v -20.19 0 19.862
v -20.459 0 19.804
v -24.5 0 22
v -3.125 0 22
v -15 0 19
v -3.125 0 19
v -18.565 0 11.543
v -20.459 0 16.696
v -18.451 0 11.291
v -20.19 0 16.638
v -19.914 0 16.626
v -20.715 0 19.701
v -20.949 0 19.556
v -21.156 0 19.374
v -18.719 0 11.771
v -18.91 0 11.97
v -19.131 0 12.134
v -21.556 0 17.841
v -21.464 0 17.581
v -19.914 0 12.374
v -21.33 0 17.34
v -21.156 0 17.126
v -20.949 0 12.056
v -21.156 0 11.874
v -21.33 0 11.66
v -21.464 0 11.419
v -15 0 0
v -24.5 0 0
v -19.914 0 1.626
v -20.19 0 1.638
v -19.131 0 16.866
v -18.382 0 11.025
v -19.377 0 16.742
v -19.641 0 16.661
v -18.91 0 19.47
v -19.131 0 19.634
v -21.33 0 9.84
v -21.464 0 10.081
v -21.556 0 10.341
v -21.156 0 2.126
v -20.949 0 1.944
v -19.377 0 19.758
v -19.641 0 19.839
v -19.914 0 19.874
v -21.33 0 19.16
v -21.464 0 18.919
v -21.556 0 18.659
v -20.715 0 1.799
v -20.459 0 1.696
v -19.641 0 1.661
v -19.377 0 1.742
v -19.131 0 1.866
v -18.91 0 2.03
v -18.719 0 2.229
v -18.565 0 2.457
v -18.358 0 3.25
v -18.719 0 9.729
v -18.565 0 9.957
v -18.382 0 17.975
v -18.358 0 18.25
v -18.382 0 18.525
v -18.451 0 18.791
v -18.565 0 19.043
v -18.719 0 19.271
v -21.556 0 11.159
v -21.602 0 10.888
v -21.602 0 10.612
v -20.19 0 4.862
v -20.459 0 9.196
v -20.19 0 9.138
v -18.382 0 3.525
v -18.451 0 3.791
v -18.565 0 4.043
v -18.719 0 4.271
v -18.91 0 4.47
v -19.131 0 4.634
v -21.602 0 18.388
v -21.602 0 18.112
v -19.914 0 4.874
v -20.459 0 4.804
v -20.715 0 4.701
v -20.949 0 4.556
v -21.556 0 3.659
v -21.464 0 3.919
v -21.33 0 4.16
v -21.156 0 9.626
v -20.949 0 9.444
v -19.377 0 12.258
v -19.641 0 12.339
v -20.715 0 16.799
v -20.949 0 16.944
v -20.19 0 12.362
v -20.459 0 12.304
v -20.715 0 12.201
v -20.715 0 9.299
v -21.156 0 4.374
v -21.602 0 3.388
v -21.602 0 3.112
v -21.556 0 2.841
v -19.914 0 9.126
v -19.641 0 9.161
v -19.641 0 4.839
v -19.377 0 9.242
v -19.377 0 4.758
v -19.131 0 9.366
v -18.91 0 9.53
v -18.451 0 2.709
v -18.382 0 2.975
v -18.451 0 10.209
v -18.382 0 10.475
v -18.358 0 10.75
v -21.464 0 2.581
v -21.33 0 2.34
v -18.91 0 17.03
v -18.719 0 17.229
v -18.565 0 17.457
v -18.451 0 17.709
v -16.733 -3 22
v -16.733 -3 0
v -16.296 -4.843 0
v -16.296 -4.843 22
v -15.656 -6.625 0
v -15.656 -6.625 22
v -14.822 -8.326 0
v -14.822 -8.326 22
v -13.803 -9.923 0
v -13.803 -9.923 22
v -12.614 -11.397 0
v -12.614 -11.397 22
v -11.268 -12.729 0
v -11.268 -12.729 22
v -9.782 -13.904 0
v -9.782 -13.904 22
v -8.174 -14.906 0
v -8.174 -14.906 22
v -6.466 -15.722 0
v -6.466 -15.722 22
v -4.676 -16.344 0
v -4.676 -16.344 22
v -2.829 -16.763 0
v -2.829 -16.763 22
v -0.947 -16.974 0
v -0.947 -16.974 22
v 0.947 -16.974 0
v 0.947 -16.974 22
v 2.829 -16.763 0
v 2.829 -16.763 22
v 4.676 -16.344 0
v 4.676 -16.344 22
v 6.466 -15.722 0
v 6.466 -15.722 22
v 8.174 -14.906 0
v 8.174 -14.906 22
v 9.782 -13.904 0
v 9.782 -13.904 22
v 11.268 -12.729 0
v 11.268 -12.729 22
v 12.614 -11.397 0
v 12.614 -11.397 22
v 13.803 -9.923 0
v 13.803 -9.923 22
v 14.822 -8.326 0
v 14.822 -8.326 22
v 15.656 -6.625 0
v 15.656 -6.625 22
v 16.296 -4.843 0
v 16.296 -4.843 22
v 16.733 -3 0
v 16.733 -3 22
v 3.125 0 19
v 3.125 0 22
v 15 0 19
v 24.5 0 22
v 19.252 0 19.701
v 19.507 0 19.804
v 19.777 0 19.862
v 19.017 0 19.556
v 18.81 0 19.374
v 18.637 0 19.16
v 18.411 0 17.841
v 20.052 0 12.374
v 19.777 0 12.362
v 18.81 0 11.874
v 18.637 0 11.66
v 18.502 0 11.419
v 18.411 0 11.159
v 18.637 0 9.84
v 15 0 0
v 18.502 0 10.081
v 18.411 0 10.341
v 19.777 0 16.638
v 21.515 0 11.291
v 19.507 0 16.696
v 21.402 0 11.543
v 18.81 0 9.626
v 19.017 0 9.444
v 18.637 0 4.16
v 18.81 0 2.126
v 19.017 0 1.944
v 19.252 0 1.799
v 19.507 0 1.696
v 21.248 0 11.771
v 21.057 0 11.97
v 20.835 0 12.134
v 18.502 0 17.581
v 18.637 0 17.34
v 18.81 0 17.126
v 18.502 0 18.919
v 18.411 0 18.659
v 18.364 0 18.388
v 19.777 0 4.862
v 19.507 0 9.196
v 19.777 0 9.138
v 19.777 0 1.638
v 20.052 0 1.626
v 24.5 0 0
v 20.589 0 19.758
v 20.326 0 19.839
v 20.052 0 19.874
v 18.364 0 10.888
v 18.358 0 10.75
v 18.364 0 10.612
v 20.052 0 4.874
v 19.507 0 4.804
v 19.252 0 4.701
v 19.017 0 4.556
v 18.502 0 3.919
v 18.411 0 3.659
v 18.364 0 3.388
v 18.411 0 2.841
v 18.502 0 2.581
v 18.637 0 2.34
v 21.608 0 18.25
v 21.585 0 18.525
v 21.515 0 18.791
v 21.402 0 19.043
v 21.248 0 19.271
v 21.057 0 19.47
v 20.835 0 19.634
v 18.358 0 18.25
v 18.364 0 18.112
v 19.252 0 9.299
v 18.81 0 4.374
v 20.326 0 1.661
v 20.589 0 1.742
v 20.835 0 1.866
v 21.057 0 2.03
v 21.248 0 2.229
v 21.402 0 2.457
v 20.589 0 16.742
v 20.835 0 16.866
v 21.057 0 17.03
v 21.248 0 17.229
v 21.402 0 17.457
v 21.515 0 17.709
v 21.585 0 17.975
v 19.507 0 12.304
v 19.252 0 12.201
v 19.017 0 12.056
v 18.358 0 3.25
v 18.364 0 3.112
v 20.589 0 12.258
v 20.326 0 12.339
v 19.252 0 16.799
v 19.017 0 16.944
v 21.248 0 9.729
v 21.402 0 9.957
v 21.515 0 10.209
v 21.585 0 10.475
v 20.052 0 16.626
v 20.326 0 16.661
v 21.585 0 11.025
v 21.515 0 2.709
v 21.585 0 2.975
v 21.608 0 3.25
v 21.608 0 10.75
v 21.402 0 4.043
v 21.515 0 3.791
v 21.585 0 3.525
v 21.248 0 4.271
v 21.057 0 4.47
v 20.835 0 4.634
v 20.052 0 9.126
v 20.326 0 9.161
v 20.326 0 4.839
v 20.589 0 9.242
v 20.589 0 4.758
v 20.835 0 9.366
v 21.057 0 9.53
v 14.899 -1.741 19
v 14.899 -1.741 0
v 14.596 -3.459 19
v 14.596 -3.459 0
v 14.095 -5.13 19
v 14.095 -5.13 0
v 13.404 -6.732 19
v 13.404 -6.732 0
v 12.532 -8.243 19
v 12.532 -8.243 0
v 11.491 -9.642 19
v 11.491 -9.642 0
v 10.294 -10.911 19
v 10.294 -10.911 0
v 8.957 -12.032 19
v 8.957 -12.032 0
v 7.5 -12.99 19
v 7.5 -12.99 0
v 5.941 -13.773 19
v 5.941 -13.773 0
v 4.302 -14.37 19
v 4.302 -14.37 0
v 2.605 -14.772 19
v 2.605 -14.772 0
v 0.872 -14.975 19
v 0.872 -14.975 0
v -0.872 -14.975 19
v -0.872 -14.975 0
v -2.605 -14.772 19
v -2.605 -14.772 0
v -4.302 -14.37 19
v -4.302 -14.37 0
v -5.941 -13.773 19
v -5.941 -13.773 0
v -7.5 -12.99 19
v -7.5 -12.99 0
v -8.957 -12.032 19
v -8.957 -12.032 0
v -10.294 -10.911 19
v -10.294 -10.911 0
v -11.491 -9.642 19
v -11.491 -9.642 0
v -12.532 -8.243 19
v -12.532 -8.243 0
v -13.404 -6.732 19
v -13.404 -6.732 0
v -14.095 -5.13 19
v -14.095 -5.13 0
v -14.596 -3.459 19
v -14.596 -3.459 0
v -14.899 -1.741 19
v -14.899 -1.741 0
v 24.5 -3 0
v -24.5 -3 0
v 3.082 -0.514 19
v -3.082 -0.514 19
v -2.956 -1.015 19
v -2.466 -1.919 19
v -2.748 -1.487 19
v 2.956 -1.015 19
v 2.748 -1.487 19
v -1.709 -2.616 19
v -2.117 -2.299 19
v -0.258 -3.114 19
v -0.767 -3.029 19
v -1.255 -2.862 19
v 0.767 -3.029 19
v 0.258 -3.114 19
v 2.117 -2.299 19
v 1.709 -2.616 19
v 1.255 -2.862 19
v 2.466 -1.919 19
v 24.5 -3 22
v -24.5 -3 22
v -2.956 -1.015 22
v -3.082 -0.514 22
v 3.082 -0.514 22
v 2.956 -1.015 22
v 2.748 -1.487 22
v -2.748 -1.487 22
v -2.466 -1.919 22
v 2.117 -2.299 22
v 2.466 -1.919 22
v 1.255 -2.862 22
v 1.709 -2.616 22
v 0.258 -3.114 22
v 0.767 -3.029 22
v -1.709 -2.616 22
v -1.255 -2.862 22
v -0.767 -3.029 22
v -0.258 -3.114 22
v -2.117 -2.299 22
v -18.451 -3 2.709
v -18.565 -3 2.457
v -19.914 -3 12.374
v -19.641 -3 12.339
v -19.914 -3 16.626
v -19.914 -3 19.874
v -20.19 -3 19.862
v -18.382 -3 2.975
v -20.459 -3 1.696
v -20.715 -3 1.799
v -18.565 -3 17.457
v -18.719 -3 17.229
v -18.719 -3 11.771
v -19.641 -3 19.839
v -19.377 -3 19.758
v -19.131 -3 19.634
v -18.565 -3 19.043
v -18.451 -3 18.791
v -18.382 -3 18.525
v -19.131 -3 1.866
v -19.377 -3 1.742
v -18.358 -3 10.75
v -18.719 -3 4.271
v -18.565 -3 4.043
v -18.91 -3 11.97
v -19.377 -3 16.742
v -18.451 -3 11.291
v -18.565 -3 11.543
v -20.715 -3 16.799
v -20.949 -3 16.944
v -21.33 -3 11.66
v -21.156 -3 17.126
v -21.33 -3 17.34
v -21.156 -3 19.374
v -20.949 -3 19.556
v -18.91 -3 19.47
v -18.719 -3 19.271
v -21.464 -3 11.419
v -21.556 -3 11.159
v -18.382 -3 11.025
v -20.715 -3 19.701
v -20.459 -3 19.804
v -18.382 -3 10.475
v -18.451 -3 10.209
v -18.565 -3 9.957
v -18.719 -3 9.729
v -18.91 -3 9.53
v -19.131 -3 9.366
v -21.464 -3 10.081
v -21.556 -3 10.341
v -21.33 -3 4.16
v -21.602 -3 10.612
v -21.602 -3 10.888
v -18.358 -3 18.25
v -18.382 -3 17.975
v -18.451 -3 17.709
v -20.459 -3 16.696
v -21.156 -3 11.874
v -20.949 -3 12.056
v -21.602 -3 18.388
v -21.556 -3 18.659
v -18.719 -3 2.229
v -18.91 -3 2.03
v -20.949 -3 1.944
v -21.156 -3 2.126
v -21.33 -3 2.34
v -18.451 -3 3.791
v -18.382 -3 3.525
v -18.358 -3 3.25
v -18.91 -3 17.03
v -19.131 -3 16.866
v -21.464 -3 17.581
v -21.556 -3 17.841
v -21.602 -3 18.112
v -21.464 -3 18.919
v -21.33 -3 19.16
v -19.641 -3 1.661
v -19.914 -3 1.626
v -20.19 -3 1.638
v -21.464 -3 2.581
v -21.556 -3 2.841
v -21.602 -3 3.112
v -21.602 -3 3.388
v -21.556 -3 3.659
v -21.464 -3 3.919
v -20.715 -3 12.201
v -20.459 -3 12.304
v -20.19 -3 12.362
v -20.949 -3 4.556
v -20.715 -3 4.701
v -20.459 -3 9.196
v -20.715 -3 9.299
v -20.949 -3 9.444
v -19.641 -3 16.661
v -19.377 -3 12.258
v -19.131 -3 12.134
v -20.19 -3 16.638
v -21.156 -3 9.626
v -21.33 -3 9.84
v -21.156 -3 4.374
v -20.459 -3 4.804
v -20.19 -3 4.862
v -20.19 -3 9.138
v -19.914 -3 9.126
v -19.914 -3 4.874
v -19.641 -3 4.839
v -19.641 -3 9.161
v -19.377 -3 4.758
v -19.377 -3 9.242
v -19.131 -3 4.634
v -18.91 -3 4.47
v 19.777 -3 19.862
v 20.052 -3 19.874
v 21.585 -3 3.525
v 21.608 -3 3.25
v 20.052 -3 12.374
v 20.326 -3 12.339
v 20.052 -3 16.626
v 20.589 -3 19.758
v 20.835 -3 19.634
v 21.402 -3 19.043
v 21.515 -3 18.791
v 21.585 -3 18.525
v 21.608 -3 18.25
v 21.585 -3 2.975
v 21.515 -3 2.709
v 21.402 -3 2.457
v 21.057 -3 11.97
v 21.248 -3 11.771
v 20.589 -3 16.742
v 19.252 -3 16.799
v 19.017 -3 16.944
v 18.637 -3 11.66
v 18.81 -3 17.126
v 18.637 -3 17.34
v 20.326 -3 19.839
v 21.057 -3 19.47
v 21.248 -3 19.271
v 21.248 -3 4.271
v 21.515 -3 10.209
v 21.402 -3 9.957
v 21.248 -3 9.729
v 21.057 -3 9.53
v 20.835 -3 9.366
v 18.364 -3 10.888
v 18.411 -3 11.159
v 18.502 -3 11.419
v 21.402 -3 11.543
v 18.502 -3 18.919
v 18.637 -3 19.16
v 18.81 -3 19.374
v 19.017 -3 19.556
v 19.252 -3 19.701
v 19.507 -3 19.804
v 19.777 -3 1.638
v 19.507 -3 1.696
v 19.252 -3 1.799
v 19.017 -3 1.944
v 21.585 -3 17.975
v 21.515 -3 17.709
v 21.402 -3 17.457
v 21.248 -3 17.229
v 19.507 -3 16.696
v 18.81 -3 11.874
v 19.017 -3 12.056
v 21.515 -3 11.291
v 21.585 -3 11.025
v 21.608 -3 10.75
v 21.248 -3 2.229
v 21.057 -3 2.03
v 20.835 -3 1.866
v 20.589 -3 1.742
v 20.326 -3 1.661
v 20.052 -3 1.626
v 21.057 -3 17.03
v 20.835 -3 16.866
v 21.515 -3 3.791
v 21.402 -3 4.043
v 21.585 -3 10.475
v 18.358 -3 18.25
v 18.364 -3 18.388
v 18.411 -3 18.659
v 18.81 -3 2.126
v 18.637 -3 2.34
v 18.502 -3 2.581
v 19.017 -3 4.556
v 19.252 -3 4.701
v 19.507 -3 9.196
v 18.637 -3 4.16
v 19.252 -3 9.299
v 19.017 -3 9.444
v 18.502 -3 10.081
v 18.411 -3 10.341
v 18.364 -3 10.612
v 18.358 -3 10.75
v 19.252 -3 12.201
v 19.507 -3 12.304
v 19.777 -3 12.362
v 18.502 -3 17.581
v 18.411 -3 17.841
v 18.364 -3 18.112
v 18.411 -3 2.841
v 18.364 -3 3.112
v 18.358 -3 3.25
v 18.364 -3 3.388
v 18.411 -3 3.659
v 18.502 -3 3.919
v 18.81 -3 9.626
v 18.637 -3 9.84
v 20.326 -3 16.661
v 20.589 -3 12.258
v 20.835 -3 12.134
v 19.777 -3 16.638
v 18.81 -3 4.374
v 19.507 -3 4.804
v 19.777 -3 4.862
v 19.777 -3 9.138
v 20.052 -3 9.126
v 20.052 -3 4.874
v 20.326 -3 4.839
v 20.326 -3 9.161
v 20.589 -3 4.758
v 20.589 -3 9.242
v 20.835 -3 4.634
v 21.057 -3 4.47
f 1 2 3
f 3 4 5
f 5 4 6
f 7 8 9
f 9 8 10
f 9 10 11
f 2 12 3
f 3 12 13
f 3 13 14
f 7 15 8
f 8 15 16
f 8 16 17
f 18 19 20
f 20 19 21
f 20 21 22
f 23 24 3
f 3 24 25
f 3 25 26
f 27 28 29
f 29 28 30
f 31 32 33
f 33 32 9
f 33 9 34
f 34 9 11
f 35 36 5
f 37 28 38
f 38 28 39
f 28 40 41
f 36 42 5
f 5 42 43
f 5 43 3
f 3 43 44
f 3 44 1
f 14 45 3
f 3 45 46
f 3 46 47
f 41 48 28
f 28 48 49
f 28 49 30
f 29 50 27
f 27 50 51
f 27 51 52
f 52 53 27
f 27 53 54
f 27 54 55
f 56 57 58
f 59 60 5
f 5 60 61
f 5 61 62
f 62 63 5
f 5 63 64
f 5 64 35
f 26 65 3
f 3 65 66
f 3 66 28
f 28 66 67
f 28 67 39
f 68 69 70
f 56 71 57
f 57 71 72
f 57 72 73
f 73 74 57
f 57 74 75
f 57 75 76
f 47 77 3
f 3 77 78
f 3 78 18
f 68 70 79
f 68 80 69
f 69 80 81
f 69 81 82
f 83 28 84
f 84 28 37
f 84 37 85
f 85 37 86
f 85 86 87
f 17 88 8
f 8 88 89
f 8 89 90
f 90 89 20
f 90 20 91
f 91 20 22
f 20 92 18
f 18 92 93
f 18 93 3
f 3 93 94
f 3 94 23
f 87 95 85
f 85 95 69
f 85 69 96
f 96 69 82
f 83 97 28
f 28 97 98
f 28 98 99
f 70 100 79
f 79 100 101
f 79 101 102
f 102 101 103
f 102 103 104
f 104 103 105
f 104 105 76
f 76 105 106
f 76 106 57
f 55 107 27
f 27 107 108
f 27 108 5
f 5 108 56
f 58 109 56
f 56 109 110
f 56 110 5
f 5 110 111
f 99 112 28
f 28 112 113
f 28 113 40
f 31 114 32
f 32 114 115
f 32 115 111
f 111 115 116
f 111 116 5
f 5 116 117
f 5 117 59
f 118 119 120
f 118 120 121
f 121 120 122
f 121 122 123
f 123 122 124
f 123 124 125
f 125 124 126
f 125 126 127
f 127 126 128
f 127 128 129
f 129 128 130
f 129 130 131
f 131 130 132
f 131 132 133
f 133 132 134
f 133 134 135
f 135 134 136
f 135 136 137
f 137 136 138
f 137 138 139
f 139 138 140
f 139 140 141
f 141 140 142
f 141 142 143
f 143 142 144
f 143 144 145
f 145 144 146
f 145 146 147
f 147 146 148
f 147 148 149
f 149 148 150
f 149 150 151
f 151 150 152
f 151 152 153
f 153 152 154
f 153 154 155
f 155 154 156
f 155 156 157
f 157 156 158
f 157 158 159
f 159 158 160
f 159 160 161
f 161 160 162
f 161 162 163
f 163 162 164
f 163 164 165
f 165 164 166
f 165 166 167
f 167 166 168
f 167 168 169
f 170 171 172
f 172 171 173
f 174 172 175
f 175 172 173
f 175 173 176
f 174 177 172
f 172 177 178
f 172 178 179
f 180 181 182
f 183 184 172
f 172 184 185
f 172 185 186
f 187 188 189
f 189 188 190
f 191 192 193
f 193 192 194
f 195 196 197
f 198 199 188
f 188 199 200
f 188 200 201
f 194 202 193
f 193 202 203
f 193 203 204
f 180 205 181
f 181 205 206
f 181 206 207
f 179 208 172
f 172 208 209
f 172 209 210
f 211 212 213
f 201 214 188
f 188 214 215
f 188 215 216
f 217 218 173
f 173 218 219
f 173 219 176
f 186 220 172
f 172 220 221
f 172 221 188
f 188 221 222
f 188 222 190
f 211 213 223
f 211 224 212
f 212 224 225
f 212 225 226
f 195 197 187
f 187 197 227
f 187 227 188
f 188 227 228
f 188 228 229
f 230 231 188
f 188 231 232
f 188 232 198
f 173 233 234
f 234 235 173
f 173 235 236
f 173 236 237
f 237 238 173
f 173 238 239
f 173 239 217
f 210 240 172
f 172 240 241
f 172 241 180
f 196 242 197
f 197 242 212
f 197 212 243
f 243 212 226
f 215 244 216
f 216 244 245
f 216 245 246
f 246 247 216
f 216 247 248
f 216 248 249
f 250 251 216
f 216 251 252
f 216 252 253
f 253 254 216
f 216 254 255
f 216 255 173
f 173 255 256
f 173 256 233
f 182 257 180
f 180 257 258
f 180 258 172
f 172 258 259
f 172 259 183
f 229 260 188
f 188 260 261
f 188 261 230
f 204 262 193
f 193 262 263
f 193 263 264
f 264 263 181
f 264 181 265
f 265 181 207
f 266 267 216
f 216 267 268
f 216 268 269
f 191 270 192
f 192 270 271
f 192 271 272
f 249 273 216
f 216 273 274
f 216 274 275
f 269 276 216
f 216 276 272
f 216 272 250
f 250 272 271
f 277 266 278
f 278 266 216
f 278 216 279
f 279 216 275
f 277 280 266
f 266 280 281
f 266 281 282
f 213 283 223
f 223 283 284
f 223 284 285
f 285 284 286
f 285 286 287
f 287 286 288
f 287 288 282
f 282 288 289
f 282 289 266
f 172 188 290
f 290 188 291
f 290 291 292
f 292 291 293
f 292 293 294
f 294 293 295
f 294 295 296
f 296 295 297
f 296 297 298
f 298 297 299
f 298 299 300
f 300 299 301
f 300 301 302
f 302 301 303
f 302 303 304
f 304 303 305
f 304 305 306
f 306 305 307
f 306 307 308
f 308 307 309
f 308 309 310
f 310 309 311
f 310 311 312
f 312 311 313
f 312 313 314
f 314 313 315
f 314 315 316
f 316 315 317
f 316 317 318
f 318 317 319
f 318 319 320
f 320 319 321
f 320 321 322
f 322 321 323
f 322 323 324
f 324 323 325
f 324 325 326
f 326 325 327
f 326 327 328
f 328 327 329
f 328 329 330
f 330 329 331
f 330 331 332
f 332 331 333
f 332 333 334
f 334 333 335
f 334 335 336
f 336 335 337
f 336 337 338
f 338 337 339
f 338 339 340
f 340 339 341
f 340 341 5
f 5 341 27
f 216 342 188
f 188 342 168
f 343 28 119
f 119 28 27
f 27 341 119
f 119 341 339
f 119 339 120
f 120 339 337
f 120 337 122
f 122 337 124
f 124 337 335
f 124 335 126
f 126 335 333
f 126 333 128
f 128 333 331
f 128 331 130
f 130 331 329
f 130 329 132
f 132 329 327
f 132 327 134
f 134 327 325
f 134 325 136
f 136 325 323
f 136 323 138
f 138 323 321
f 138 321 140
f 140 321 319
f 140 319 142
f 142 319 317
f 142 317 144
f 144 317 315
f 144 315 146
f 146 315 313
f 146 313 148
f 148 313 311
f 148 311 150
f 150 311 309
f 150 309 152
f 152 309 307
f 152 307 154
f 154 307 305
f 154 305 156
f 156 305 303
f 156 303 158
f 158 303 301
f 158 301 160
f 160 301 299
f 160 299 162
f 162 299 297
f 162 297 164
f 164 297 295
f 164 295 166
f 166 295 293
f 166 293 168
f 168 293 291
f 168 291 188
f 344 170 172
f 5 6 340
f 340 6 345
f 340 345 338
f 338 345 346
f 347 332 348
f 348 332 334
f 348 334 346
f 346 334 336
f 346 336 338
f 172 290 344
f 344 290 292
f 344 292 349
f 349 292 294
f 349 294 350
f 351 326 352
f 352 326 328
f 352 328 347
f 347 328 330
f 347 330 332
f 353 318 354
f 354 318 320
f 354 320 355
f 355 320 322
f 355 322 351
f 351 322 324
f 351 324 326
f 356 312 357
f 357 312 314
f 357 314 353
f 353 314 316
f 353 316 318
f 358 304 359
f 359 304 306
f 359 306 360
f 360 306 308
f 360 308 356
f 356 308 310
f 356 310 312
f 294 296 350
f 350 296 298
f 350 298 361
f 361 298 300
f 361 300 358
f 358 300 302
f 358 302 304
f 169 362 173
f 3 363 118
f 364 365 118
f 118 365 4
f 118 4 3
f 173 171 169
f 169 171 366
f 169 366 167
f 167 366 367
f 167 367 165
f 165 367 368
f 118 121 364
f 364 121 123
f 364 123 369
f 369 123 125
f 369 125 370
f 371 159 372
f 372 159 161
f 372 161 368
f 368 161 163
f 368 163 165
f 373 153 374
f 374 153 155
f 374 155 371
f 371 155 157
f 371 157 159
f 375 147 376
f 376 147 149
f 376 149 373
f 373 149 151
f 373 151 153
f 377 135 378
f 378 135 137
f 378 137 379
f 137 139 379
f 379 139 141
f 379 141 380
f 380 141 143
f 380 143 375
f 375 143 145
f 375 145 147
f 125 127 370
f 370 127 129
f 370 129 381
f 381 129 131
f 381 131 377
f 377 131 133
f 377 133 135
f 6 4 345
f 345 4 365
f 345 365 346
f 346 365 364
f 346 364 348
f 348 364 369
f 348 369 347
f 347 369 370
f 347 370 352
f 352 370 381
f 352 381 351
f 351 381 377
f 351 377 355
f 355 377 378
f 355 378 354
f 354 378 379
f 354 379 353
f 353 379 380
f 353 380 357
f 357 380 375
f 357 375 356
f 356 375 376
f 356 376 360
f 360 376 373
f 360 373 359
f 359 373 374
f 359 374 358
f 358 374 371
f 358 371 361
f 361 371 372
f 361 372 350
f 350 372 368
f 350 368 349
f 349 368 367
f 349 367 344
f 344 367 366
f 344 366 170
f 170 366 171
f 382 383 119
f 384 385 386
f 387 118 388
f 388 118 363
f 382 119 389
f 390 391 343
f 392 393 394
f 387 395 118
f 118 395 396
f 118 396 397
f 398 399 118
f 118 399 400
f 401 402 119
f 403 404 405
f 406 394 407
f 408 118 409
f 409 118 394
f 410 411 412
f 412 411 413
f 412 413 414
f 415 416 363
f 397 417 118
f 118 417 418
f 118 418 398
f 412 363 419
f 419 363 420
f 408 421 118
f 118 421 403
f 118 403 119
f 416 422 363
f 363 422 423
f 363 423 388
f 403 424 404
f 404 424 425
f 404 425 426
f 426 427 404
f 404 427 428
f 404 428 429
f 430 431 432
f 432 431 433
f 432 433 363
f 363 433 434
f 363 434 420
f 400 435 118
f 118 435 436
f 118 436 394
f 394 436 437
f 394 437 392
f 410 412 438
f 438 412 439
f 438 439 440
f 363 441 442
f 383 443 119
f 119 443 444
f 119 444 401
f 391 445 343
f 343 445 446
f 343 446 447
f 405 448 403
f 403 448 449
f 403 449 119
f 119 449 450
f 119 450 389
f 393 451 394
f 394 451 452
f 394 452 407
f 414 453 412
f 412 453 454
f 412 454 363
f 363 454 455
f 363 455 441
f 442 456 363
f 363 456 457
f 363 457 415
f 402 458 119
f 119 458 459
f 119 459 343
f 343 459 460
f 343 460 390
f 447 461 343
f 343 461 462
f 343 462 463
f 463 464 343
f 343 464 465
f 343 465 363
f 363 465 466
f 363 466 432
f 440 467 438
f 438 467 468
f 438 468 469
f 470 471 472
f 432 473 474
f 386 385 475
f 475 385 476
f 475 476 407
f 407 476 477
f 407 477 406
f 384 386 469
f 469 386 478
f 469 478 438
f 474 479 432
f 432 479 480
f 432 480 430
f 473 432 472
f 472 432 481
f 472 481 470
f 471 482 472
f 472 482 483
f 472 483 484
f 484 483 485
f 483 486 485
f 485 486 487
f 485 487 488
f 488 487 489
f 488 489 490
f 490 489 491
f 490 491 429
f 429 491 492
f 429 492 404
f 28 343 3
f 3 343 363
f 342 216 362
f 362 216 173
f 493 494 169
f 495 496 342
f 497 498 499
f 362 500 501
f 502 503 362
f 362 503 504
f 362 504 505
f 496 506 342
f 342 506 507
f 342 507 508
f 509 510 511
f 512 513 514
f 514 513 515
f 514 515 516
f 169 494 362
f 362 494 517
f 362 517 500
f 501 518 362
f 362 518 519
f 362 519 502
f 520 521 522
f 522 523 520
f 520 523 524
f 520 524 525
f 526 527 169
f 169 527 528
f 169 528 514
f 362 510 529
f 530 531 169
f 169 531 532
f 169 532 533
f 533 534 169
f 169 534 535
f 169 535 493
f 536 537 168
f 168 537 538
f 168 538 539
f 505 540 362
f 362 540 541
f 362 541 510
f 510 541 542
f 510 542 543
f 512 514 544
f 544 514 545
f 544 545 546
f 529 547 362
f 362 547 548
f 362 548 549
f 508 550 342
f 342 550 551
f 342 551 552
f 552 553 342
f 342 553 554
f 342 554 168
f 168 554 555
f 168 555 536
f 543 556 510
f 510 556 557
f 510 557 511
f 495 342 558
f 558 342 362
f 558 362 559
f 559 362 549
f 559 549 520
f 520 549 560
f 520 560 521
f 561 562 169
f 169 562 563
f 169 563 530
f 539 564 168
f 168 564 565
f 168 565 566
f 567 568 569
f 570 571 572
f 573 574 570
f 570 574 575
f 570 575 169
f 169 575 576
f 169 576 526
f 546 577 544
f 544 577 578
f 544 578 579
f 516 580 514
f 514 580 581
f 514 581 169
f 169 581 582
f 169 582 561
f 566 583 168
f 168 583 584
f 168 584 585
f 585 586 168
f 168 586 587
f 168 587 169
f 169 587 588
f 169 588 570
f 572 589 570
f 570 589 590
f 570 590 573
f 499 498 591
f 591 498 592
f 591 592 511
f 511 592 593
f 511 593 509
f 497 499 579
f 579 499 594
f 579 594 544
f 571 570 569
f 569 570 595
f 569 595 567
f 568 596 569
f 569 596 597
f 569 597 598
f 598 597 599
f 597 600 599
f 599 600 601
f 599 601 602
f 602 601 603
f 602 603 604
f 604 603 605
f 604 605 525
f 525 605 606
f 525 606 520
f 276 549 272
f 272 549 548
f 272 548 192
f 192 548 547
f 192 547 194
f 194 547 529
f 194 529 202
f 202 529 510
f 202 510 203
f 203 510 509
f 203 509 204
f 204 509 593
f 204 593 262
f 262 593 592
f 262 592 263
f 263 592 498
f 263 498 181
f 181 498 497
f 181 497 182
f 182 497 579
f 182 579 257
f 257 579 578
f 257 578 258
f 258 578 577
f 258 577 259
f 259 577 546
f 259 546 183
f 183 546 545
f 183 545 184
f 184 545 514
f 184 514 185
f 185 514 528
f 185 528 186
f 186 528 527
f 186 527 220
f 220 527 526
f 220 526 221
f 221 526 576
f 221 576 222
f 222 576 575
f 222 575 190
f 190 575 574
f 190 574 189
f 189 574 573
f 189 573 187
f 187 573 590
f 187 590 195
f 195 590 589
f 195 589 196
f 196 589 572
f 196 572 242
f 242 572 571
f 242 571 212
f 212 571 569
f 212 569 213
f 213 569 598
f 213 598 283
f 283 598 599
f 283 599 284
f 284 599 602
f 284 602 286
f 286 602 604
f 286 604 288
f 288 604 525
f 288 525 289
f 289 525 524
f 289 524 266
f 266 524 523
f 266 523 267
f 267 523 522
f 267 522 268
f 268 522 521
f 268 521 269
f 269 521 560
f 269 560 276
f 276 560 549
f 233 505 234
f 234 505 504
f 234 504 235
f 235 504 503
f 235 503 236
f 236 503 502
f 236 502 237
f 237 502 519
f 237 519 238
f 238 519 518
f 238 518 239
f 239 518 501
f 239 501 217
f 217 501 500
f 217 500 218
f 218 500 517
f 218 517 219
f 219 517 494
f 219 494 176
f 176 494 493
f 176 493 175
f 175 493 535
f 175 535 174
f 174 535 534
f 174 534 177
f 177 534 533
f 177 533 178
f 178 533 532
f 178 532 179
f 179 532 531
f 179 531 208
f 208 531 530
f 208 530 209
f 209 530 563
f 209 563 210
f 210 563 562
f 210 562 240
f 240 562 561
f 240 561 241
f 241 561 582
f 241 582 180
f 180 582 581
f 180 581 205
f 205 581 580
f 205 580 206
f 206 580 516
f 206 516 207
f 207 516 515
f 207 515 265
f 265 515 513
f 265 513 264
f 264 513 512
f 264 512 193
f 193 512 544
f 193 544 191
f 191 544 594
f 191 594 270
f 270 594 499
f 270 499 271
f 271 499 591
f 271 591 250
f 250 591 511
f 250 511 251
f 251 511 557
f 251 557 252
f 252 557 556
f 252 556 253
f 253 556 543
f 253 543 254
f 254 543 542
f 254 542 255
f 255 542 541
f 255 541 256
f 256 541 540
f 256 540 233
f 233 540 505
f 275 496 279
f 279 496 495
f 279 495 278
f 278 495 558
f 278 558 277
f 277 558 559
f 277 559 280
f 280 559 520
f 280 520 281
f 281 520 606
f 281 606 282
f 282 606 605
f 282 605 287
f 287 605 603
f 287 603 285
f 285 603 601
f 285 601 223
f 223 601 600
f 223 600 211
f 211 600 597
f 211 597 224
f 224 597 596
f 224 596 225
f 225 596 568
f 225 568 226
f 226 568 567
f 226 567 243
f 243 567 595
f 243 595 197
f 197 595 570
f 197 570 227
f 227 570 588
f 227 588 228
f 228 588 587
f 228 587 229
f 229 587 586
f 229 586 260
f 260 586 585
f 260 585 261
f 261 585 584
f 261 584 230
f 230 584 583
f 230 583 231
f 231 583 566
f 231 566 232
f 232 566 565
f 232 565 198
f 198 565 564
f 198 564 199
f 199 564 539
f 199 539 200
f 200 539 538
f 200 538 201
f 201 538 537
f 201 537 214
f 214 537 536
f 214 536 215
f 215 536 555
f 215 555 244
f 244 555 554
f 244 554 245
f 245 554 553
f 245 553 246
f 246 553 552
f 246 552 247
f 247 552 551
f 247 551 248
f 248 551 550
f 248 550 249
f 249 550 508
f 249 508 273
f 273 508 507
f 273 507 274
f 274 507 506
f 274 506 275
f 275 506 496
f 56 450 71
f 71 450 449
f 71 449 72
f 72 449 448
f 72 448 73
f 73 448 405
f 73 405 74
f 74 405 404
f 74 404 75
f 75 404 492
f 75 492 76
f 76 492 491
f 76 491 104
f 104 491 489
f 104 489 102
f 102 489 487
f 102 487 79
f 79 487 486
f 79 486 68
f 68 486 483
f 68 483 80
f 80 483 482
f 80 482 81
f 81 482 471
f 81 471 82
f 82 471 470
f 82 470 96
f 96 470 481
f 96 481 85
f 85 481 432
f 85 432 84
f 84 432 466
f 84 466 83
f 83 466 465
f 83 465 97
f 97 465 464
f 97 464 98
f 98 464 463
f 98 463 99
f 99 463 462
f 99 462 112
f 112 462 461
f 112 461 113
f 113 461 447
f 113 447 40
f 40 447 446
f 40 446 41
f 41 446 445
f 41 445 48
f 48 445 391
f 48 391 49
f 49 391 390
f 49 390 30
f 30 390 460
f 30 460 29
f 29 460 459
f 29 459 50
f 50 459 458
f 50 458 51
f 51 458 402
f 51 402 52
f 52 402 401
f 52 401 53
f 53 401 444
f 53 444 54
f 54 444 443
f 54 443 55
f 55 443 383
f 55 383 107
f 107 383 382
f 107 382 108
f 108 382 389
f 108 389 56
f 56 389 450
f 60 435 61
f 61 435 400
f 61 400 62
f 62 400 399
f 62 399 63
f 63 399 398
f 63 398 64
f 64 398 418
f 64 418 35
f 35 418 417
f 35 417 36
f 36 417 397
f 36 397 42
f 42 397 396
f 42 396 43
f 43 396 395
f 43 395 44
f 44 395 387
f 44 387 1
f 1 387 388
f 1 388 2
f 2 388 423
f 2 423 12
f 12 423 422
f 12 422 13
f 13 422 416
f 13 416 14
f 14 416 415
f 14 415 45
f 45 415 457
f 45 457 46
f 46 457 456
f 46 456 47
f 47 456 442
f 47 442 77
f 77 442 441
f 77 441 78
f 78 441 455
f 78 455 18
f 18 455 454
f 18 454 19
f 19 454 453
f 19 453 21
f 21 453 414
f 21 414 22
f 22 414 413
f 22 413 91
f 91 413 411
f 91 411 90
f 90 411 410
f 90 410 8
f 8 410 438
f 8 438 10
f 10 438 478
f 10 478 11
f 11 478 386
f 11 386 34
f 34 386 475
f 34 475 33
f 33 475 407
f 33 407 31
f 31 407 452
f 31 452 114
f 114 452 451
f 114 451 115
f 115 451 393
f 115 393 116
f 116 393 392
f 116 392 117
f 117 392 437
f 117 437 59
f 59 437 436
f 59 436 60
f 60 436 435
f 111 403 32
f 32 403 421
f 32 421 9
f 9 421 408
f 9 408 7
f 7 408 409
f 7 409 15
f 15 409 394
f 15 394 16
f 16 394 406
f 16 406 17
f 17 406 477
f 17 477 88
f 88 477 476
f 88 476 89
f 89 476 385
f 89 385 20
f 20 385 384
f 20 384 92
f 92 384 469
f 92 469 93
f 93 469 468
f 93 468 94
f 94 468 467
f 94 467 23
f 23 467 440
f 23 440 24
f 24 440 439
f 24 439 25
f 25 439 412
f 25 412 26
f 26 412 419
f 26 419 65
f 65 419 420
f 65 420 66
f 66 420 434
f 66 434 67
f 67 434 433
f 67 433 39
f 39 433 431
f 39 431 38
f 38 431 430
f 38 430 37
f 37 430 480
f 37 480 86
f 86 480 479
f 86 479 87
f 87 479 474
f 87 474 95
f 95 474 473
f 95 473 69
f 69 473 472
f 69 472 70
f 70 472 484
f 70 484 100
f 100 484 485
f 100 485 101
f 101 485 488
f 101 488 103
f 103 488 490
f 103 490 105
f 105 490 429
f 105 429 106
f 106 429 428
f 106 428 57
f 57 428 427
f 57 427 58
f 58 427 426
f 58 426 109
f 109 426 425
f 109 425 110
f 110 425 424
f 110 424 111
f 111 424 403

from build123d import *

# Parameters (mm, degrees)
SALIENTE_EXTRUIR1_DEPTH = 19
SALIENTE_EXTRUIR2_DEPTH = 3
CROQUIS3_R              = 3.125
CORTAR_EXTRUIR1_DEPTH   = 3
CROQUIS4_W              = 7.766799469
CROQUIS4_H              = 3
SALIENTE_EXTRUIR3_DEPTH = 22
CROQUIS5_R              = 1.625
CORTAR_EXTRUIR2_DEPTH   = 4


with BuildPart() as part:
    # Croquis1 → Saliente-Extruir1 (new body)
    with BuildSketch(Plane.XY):
        with BuildLine():
            Line((17, 0), (15, 0))
            ThreePointArc((15, 0), (0, -15), (-15, 0))
            Line((-15, 0), (-17, 0))
            ThreePointArc((-17, 0), (0, -17), (17, 0))
        make_face()
    extrude(amount=SALIENTE_EXTRUIR1_DEPTH)

    # Croquis2 → Saliente-Extruir2 (add)
    with BuildSketch(Plane.XY.offset(19)):
        with BuildLine():
            Line((15, 0), (-15, 0))
            ThreePointArc((-15, 0), (0, -15), (15, 0))
        make_face()
        with BuildLine():
            ThreePointArc((15, 0), (0, -15), (-15, 0))
            Line((-15, 0), (-17, 0))
            ThreePointArc((-17, 0), (0, -17), (17, 0))
            Line((17, 0), (15, 0))
        make_face()
    extrude(amount=SALIENTE_EXTRUIR2_DEPTH)

    # Croquis3 → Cortar-Extruir1 (cut)
    with BuildSketch(Plane.XY.offset(22)):
        Circle(CROQUIS3_R)
    extrude(amount=-CORTAR_EXTRUIR1_DEPTH, mode=Mode.SUBTRACT)

    # Croquis4 → Saliente-Extruir3 (add)
    with BuildSketch(Plane.XY.offset(22)):
        with Locations((-20.616600266, -1.5)):
            Rectangle(CROQUIS4_W, CROQUIS4_H)
        with Locations((20.616600266, -1.5)):
            Rectangle(CROQUIS4_W, CROQUIS4_H)
    extrude(amount=-SALIENTE_EXTRUIR3_DEPTH)

    # Croquis5 → Cortar-Extruir2 (cut, through all)
    with BuildSketch(Plane.XZ.offset(3)):
        with Locations((-19.983200531, 3.25)):
            Circle(CROQUIS5_R)
        with Locations((-19.983200531, 10.75)):
            Circle(CROQUIS5_R)
        with Locations((-19.983200531, 18.25)):
            Circle(CROQUIS5_R)
        with Locations((19.983200531, 18.25)):
            Circle(CROQUIS5_R)
        with Locations((19.983200531, 10.75)):
            Circle(CROQUIS5_R)
        with Locations((19.983200531, 3.25)):
            Circle(CROQUIS5_R)
    extrude(amount=-CORTAR_EXTRUIR2_DEPTH, mode=Mode.SUBTRACT)


solid = part.part
